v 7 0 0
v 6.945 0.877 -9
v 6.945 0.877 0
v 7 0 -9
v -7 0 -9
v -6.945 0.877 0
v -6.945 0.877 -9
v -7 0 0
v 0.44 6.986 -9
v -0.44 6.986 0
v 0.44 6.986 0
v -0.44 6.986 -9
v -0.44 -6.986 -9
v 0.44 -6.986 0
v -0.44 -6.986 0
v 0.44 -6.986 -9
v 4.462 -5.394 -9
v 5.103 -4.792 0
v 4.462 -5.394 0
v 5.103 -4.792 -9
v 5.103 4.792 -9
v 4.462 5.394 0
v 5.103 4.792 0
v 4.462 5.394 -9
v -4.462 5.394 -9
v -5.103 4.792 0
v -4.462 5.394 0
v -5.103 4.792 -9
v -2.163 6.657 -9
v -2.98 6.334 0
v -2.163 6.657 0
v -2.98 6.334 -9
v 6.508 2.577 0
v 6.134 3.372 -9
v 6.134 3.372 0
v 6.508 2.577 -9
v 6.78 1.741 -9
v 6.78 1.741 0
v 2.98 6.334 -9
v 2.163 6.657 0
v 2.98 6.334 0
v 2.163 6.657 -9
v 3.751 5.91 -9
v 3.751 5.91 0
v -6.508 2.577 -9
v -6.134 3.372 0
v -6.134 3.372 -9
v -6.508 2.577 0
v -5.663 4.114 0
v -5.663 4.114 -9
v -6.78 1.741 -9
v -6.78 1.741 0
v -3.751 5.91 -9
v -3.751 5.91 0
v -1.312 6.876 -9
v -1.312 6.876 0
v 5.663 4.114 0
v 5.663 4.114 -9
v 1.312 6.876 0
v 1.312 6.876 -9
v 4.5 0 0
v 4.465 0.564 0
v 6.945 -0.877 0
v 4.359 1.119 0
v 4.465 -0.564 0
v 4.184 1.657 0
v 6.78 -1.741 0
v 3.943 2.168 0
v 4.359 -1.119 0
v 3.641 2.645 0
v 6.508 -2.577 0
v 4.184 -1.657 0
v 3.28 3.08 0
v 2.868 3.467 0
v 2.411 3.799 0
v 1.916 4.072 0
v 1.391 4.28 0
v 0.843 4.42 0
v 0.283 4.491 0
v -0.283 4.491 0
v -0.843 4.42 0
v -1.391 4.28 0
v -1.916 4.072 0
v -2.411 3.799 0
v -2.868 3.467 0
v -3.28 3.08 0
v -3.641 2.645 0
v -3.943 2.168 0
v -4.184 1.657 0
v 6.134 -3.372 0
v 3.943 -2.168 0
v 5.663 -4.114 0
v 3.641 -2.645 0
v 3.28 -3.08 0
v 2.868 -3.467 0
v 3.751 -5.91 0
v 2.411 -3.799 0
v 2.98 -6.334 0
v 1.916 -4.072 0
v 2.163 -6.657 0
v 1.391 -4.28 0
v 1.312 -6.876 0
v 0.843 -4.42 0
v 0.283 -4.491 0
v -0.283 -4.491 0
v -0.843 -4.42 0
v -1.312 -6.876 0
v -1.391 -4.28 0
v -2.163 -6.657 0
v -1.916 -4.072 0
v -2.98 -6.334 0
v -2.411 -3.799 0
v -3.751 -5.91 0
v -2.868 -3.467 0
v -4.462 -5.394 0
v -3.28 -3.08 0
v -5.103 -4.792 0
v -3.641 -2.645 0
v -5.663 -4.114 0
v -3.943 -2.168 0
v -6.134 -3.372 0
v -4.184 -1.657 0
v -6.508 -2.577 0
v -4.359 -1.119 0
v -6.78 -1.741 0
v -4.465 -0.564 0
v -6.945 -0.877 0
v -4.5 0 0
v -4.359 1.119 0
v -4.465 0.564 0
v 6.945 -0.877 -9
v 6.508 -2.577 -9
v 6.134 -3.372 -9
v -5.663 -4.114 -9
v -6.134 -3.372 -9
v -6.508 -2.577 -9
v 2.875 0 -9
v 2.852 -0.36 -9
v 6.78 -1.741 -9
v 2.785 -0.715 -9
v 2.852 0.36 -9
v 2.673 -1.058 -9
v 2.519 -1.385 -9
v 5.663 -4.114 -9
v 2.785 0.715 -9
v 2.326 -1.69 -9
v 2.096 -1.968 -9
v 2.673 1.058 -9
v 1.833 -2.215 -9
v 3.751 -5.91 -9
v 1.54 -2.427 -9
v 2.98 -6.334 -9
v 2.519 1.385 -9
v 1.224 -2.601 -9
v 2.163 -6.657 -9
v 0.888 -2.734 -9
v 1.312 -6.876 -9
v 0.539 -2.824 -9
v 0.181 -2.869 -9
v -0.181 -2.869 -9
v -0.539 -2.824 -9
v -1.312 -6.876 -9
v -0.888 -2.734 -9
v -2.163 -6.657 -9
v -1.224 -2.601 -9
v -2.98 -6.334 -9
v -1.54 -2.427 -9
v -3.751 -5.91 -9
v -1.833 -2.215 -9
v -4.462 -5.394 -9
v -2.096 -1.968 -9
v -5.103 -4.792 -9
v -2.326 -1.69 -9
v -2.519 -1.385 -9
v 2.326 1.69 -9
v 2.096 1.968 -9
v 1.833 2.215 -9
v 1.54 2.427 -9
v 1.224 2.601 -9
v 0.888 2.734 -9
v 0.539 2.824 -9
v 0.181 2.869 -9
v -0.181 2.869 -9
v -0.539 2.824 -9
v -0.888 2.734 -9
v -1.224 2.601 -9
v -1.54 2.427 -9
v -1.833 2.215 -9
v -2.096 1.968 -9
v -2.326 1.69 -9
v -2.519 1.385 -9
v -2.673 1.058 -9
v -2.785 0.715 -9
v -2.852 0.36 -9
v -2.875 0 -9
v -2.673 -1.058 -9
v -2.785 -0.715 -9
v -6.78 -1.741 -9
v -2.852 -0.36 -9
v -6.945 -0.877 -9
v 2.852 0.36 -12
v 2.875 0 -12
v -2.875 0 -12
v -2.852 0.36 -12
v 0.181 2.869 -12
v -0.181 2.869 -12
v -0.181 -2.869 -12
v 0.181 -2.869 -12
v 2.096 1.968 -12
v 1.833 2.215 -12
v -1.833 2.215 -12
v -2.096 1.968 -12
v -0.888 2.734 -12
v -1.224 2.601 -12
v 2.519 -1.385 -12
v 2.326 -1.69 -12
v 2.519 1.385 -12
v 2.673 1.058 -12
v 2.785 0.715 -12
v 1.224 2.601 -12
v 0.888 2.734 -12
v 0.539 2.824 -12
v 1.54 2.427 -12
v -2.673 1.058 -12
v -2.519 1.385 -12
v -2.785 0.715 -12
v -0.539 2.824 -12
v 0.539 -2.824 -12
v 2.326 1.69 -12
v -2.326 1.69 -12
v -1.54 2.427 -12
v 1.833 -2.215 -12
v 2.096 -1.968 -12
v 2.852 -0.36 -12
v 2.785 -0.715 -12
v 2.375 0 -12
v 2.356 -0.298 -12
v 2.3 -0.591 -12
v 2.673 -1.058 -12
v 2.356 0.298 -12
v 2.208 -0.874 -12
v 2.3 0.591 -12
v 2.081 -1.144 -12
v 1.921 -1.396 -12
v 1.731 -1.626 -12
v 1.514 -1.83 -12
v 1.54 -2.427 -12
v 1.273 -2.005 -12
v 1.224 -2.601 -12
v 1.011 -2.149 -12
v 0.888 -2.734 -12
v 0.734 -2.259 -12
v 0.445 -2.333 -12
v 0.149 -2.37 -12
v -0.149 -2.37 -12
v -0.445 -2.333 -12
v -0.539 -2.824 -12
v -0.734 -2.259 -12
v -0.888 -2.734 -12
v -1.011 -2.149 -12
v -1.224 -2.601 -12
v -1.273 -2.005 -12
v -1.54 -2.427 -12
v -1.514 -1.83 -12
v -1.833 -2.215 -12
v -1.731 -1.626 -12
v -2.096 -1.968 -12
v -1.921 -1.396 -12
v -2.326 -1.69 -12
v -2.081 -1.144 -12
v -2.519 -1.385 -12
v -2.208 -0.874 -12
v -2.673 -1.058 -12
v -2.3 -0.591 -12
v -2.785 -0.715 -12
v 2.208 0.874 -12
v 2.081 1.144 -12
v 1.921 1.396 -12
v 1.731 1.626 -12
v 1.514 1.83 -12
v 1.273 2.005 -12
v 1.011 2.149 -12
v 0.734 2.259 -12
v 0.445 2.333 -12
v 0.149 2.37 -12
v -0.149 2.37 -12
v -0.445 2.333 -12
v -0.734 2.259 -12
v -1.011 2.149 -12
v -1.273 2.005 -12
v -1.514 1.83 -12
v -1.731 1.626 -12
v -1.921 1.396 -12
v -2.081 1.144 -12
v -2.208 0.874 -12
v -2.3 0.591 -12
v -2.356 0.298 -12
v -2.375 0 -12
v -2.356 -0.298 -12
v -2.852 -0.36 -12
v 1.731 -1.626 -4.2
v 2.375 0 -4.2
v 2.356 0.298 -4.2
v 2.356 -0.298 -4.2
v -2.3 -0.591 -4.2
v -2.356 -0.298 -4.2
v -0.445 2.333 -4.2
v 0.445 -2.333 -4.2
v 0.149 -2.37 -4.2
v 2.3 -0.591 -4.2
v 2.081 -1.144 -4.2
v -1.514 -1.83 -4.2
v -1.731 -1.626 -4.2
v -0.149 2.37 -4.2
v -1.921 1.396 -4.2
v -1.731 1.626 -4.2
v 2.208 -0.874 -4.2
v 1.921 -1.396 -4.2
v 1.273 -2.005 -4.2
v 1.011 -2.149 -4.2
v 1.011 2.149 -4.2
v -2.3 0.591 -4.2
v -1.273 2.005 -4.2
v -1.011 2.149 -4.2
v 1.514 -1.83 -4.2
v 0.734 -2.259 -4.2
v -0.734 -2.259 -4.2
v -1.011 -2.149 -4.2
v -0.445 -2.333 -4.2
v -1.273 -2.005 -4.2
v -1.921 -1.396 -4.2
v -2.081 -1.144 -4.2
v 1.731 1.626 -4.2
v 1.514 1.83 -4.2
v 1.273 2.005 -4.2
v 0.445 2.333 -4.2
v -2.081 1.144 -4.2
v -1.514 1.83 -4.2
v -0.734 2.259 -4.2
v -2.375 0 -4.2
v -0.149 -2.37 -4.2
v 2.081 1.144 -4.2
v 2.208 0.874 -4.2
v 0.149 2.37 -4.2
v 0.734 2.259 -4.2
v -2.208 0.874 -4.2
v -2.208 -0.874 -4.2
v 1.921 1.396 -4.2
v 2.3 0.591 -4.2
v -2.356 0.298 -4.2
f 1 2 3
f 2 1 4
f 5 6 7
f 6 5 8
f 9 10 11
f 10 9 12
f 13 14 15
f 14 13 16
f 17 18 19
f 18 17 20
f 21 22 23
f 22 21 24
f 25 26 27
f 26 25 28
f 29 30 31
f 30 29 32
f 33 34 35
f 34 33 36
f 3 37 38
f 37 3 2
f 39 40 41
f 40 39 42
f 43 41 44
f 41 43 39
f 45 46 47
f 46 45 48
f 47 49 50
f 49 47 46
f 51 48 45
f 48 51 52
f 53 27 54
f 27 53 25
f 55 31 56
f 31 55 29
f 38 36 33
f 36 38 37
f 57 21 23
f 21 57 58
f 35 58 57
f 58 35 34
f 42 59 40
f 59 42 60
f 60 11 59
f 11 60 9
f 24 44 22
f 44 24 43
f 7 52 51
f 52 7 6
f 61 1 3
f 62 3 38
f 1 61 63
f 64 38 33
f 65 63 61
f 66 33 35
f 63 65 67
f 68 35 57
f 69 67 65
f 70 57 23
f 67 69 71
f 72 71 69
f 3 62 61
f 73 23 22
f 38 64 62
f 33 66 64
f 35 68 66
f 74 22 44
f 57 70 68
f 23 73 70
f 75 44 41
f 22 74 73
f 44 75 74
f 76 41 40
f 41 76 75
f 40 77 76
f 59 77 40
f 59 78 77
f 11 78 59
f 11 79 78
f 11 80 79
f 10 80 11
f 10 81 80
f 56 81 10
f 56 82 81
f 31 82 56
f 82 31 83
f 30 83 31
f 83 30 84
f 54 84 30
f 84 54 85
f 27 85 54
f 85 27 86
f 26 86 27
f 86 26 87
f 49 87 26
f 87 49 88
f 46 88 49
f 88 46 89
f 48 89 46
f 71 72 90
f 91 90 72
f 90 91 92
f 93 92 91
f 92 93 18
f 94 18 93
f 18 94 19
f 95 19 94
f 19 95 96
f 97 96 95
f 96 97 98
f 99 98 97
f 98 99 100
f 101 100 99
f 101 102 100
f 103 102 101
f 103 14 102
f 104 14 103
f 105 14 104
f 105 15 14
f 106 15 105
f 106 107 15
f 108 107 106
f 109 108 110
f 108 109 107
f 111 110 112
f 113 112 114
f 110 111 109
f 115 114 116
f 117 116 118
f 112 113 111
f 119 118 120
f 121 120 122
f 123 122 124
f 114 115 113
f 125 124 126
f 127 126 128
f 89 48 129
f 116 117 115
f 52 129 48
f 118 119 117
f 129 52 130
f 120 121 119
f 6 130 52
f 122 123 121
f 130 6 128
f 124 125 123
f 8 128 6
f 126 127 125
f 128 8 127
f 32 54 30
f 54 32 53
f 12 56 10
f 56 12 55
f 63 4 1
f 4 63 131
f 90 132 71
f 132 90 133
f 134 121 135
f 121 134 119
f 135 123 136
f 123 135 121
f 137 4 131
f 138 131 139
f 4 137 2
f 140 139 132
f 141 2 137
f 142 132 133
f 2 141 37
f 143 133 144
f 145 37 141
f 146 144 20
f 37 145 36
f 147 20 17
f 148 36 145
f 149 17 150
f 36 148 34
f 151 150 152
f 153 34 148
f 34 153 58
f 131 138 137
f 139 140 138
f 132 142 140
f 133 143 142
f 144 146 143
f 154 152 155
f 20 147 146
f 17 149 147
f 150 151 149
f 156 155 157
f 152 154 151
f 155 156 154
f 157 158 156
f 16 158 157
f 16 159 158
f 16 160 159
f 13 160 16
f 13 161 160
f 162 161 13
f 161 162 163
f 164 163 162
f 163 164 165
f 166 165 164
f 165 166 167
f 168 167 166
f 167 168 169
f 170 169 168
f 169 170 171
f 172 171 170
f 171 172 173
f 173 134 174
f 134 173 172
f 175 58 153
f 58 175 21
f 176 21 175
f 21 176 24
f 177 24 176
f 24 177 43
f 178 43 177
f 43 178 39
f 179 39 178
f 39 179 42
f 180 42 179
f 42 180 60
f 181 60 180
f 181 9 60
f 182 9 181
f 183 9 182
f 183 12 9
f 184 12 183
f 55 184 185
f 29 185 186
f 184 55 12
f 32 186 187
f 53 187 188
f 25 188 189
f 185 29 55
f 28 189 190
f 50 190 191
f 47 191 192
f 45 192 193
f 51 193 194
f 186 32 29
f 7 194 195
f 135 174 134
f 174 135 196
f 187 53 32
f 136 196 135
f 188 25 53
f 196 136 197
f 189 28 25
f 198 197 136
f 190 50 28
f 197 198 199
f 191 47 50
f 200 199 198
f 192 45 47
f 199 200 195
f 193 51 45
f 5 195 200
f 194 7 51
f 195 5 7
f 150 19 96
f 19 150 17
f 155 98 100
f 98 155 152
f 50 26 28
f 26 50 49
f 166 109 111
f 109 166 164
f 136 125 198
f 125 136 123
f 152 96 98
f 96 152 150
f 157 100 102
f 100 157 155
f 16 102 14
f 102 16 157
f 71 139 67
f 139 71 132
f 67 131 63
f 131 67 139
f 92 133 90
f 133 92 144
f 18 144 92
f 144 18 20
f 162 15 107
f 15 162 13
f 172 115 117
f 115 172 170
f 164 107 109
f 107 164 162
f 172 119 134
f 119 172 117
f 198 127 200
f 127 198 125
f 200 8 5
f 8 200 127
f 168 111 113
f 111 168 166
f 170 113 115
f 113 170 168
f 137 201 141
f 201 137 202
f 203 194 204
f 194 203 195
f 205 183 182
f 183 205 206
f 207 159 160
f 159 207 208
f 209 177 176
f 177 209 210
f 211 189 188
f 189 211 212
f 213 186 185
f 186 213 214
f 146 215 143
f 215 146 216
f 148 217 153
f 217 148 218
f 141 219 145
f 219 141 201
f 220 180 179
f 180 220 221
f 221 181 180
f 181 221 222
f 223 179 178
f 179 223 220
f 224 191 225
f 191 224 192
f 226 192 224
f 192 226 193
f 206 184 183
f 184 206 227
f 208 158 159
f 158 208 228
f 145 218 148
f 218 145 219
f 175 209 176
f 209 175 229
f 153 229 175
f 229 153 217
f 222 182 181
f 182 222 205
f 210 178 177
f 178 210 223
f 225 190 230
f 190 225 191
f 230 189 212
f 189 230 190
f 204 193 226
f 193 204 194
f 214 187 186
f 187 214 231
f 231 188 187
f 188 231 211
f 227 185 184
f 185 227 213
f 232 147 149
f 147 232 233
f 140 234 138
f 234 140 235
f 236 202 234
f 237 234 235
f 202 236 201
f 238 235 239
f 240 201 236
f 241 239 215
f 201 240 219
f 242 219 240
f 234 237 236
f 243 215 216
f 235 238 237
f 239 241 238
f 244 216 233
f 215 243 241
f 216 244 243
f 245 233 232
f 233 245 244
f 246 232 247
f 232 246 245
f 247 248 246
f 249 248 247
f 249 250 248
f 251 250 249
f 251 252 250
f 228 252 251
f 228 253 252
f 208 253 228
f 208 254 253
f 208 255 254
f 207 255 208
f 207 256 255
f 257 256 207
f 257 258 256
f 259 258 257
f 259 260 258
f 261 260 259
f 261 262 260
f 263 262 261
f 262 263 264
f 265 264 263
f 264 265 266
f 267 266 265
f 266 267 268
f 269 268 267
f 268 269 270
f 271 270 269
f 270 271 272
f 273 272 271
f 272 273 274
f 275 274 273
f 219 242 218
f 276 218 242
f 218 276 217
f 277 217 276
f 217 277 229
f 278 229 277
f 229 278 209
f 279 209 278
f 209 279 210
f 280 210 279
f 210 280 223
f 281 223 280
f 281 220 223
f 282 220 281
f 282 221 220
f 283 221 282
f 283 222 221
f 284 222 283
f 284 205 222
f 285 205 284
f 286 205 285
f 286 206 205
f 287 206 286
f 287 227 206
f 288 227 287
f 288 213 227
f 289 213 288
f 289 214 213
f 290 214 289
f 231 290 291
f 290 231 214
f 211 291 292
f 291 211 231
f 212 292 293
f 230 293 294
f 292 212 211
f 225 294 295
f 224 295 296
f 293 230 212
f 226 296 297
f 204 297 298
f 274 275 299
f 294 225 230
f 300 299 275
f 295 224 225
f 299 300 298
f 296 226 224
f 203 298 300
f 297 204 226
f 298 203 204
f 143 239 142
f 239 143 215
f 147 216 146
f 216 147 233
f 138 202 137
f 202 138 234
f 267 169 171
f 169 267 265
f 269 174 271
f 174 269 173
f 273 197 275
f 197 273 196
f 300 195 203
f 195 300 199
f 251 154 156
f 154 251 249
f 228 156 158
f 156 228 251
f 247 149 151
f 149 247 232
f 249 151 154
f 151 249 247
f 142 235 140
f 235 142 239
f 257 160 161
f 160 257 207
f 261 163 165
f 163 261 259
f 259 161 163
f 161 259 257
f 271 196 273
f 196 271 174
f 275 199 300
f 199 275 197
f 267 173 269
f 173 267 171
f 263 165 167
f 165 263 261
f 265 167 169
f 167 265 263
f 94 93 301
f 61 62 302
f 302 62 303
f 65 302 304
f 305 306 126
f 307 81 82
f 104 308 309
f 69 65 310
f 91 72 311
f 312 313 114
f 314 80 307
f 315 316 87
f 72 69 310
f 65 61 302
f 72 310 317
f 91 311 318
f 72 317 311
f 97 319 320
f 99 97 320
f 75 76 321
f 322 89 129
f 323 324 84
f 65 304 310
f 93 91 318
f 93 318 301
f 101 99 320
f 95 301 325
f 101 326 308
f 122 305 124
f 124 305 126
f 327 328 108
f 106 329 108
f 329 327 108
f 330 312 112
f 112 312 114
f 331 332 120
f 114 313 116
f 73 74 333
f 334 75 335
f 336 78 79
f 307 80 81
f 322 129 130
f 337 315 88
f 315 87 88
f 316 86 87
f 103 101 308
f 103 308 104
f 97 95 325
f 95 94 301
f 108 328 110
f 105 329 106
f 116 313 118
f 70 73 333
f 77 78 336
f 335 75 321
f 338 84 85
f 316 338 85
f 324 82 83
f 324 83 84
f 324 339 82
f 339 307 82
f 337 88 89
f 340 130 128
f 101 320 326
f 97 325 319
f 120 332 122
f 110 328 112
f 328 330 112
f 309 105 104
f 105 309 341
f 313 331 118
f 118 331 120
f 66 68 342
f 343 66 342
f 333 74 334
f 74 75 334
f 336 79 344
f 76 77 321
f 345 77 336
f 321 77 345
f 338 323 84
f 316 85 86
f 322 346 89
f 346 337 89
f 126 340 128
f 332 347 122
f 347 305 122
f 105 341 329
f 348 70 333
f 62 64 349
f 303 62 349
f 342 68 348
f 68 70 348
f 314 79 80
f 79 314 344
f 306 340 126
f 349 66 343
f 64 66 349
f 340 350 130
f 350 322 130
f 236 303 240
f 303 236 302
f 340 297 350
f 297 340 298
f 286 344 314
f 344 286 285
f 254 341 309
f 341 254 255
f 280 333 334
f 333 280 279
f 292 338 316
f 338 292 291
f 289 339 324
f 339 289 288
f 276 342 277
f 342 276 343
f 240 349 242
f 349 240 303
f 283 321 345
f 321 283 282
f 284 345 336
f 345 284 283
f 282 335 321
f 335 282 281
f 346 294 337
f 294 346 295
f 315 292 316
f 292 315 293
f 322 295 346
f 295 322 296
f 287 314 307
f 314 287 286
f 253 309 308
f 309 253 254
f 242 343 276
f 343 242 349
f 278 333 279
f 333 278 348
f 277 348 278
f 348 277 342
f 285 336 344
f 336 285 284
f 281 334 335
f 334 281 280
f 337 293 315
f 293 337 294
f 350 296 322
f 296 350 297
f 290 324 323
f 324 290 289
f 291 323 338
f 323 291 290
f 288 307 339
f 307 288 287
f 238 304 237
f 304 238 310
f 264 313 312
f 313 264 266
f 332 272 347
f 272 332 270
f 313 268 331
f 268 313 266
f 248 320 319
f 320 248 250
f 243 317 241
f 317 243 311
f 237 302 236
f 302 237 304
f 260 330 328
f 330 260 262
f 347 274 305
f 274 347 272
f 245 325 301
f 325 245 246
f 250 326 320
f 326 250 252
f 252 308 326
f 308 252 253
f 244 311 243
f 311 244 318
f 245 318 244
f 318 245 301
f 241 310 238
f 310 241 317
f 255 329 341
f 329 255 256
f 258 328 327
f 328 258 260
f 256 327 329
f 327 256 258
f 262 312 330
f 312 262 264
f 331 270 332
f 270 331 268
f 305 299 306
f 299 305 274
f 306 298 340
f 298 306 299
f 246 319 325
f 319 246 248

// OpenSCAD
$fn = 50;


difference() {
	union() {
		translate(v = [0, 0, -9.0000000000]) {
			cylinder(h = 9, r = 7.0000000000);
		}
		translate(v = [0, 0, -12.0000000000]) {
			cylinder(h = 12, r = 2.8750000000);
		}
	}
	union() {
		translate(v = [0, 0, 0]) {
			rotate(a = [0, 0, 0]) {
				difference() {
					union() {
						translate(v = [0, 0, -12.0000000000]) {
							cylinder(h = 12, r = 2.2500000000);
						}
						translate(v = [0, 0, -4.2000000000]) {
							cylinder(h = 4.2000000000, r1 = 2.3750000000, r2 = 4.5000000000);
						}
						translate(v = [0, 0, -12.0000000000]) {
							cylinder(h = 12, r = 2.3750000000);
						}
						translate(v = [0, 0, -12.0000000000]) {
							cylinder(h = 12, r = 2.2500000000);
						}
					}
					union();
				}
			}
		}
	}
}
